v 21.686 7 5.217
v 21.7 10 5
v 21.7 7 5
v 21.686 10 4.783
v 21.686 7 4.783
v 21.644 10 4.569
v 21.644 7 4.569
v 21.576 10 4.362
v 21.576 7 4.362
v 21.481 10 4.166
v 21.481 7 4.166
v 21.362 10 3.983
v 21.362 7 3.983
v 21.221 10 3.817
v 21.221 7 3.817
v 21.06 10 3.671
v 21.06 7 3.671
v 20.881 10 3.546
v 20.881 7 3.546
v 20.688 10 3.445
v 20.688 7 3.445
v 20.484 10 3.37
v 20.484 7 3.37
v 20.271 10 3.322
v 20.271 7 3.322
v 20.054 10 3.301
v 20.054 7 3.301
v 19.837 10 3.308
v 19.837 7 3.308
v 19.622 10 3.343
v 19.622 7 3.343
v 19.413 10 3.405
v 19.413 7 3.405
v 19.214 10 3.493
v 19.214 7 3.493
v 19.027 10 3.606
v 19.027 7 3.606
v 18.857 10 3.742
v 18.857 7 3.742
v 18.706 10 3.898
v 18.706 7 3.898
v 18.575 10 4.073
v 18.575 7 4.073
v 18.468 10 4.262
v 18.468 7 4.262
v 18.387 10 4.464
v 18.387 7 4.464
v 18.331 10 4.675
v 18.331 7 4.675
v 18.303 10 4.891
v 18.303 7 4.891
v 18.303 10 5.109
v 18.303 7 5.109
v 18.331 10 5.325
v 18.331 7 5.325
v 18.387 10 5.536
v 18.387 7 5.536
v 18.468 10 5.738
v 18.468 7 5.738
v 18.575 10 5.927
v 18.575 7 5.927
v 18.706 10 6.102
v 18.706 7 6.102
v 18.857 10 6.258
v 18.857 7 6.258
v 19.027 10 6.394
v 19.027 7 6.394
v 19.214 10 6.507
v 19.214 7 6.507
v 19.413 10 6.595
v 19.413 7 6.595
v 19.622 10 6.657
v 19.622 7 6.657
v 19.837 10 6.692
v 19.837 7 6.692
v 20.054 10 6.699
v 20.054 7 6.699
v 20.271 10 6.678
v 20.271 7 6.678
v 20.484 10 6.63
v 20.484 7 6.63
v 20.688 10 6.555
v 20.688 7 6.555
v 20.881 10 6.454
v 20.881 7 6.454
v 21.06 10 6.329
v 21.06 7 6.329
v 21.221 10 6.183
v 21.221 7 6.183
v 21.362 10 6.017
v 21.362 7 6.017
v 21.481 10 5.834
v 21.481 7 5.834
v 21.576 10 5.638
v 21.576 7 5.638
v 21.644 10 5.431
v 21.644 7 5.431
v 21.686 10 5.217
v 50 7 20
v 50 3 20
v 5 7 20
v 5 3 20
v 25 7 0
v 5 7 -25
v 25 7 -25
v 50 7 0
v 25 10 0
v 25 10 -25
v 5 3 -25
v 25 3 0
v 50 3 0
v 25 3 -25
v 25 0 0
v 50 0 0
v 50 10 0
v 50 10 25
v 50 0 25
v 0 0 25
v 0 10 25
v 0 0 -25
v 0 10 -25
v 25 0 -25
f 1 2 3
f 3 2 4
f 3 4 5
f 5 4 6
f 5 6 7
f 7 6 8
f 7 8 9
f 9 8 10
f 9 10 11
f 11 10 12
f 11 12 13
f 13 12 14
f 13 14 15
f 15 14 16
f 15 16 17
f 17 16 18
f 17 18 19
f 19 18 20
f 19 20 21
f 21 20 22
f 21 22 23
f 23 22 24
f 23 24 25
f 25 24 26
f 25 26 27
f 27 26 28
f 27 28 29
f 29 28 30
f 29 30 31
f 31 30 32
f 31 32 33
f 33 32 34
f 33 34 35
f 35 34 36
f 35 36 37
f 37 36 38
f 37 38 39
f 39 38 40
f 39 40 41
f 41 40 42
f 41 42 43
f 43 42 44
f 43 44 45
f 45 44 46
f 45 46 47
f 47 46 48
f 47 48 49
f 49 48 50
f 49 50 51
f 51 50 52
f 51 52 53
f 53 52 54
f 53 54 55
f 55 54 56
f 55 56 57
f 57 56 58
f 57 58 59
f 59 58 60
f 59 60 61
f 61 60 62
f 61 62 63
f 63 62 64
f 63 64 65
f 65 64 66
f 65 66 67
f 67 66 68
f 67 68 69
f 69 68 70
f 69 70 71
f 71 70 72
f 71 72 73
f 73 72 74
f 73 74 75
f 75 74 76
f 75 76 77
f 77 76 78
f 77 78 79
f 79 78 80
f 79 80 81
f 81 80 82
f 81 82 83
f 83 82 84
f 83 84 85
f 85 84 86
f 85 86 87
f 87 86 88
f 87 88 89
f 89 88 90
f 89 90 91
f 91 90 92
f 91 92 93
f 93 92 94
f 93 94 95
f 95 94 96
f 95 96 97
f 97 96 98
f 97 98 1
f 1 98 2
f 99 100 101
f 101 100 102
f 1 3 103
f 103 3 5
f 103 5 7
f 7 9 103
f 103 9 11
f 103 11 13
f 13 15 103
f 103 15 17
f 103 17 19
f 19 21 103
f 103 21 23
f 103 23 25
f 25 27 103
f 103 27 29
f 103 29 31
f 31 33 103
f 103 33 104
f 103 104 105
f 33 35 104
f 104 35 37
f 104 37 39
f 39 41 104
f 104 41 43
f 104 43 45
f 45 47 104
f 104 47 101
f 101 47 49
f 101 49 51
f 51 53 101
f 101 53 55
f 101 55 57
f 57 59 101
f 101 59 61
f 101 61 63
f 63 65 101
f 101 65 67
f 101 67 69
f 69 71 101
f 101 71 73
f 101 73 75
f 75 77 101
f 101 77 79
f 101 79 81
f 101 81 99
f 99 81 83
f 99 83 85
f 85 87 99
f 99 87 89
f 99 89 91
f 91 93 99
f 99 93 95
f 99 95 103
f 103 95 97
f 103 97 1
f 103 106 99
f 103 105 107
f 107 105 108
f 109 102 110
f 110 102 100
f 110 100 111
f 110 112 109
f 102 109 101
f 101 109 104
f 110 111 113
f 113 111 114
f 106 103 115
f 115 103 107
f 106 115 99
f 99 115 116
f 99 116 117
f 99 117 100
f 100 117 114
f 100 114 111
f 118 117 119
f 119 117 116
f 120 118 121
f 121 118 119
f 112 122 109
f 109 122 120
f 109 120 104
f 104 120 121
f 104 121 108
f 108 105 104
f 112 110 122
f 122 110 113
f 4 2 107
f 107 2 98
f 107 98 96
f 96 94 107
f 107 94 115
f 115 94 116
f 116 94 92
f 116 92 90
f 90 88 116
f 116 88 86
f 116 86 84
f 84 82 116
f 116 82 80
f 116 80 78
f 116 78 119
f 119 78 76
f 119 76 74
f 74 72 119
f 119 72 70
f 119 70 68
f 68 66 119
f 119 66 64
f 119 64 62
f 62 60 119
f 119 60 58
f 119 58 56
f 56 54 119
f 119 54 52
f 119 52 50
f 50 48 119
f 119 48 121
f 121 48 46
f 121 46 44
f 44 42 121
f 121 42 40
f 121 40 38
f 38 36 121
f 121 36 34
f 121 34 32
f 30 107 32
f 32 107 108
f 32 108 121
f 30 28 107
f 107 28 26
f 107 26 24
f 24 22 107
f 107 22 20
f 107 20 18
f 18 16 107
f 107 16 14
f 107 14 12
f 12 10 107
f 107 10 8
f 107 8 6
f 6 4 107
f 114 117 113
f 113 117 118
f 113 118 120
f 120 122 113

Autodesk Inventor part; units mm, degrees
ref_plane "YZ Plane" through (0, 0, 0) normal (1, 0, 0) x (0, 1, 0)
ref_plane "XZ Plane" through (0, 0, 0) normal (0, 1, 0) x (-1, 0, 0)
ref_plane "XY Plane" through (0, 0, 0) normal (0, 0, 1) x (1, 0, 0)
sketch "Skizze1" plane through (0, 0, 0) normal (0, 1, 0) x (-1, 0, 0)
  line L0 (0, 0) -> (-50, 0)
  line L1 (-50, 0) -> (-50, 25)
  line L2 (-50, 25) -> (0, 25)
  line L3 (0, 25) -> (0, 0)
  line L4 (0, 0) -> (-25, 0)
  line L5 (-25, 0) -> (-25, -25)
  line L6 (-25, -25) -> (0, -25)
  line L7 (0, -25) -> (0, 0)
  dimension "d0" = 50
  dimension "d1" = 25
  dimension "d2" = 25
  dimension "d3" = 25
extrude "Extrusion1" add sketch "Skizze1" along normal blind 10
sketch "Skizze2" plane through (50, 0, 25) normal (1, 0, 0) x (0, 0, -1)
  line L0 (25, 0) -> (25, 10) projected
  line L1 (25, 7) -> (5, 7)
  line L2 (5, 7) -> (5, 3)
  line L3 (5, 3) -> (25, 3)
  line L4 (25, 3) -> (25, 7)
  line L5 (0, 10) -> (25, 10) projected
  line L6 (0, 0) -> (25, 0) projected
  point P0 (12.5, 10)
  dimension "d6" = 3
  dimension "d7" = 3
  dimension "d8" = 20
extrude "Extrusion2" cut sketch "Skizze2" against normal blind 45
sketch "Skizze3" plane through (25, 0, -25) normal (0, 0, -1) x (-1, 0, 0)
  line L0 (0, 3) -> (20, 3) projected
  line L1 (20, 7) -> (20, 3) projected
  line L2 (0, 3) -> (20, 3)
  line L3 (20, 3) -> (20, 7)
  line L4 (20, 7) -> (0, 7)
  line L5 (0, 7) -> (0, 3)
  point P0 (25, 0)
extrude "Extrusion3" cut sketch "Skizze3" against normal blind 45
sketch "Skizze4" plane through (0, 10, 0) normal (0, 1, 0) x (1, 0, 0)
  line L0 (50, -20) -> (5, -20) projected
  line L1 (25, 0) -> (5, 0)
  line L2 (5, 0) -> (5, -20)
  line L3 (5, -20) -> (25, -20)
  line L4 (25, -20) -> (25, 0)
  line L5 (5, -20) -> (35, -20)
  line L6 (35, -20) -> (35, 10)
  line L7 (35, 10) -> (5, 10)
  line L8 (5, 10) -> (5, -20)
  circle A0 centre (20, -5) radius 1.7
  point P0 (0, 0)
  dimension "d13" = 30
  dimension "d14" = 30
  dimension "d15" = 3.4
extrude "Extrusion4" cut sketch "Skizze4" against normal blind 3 contours A0
equation "\"Biegeradius\" = Stärke"
equation "\"BreiteBiegungsfreistellung\" = Stärke"
equation "\"TiefeBiegungsfreistellung\" = 0.5 * Stärke"
equation "\"GrößeEckenfreistellung\" = 4 * Stärke"
equation "\"MinimalRest\" = 2 * Stärke"
equation "\"Übergangsradius\" = Biegeradius"
equation "\"JacobiRadiusGröße\" = Biegeradius"
equation "\"Abstandsgröße\" = Stärke"
equation "\"Stärke\" = 0.5"
properties part number "Eckenbohren"
